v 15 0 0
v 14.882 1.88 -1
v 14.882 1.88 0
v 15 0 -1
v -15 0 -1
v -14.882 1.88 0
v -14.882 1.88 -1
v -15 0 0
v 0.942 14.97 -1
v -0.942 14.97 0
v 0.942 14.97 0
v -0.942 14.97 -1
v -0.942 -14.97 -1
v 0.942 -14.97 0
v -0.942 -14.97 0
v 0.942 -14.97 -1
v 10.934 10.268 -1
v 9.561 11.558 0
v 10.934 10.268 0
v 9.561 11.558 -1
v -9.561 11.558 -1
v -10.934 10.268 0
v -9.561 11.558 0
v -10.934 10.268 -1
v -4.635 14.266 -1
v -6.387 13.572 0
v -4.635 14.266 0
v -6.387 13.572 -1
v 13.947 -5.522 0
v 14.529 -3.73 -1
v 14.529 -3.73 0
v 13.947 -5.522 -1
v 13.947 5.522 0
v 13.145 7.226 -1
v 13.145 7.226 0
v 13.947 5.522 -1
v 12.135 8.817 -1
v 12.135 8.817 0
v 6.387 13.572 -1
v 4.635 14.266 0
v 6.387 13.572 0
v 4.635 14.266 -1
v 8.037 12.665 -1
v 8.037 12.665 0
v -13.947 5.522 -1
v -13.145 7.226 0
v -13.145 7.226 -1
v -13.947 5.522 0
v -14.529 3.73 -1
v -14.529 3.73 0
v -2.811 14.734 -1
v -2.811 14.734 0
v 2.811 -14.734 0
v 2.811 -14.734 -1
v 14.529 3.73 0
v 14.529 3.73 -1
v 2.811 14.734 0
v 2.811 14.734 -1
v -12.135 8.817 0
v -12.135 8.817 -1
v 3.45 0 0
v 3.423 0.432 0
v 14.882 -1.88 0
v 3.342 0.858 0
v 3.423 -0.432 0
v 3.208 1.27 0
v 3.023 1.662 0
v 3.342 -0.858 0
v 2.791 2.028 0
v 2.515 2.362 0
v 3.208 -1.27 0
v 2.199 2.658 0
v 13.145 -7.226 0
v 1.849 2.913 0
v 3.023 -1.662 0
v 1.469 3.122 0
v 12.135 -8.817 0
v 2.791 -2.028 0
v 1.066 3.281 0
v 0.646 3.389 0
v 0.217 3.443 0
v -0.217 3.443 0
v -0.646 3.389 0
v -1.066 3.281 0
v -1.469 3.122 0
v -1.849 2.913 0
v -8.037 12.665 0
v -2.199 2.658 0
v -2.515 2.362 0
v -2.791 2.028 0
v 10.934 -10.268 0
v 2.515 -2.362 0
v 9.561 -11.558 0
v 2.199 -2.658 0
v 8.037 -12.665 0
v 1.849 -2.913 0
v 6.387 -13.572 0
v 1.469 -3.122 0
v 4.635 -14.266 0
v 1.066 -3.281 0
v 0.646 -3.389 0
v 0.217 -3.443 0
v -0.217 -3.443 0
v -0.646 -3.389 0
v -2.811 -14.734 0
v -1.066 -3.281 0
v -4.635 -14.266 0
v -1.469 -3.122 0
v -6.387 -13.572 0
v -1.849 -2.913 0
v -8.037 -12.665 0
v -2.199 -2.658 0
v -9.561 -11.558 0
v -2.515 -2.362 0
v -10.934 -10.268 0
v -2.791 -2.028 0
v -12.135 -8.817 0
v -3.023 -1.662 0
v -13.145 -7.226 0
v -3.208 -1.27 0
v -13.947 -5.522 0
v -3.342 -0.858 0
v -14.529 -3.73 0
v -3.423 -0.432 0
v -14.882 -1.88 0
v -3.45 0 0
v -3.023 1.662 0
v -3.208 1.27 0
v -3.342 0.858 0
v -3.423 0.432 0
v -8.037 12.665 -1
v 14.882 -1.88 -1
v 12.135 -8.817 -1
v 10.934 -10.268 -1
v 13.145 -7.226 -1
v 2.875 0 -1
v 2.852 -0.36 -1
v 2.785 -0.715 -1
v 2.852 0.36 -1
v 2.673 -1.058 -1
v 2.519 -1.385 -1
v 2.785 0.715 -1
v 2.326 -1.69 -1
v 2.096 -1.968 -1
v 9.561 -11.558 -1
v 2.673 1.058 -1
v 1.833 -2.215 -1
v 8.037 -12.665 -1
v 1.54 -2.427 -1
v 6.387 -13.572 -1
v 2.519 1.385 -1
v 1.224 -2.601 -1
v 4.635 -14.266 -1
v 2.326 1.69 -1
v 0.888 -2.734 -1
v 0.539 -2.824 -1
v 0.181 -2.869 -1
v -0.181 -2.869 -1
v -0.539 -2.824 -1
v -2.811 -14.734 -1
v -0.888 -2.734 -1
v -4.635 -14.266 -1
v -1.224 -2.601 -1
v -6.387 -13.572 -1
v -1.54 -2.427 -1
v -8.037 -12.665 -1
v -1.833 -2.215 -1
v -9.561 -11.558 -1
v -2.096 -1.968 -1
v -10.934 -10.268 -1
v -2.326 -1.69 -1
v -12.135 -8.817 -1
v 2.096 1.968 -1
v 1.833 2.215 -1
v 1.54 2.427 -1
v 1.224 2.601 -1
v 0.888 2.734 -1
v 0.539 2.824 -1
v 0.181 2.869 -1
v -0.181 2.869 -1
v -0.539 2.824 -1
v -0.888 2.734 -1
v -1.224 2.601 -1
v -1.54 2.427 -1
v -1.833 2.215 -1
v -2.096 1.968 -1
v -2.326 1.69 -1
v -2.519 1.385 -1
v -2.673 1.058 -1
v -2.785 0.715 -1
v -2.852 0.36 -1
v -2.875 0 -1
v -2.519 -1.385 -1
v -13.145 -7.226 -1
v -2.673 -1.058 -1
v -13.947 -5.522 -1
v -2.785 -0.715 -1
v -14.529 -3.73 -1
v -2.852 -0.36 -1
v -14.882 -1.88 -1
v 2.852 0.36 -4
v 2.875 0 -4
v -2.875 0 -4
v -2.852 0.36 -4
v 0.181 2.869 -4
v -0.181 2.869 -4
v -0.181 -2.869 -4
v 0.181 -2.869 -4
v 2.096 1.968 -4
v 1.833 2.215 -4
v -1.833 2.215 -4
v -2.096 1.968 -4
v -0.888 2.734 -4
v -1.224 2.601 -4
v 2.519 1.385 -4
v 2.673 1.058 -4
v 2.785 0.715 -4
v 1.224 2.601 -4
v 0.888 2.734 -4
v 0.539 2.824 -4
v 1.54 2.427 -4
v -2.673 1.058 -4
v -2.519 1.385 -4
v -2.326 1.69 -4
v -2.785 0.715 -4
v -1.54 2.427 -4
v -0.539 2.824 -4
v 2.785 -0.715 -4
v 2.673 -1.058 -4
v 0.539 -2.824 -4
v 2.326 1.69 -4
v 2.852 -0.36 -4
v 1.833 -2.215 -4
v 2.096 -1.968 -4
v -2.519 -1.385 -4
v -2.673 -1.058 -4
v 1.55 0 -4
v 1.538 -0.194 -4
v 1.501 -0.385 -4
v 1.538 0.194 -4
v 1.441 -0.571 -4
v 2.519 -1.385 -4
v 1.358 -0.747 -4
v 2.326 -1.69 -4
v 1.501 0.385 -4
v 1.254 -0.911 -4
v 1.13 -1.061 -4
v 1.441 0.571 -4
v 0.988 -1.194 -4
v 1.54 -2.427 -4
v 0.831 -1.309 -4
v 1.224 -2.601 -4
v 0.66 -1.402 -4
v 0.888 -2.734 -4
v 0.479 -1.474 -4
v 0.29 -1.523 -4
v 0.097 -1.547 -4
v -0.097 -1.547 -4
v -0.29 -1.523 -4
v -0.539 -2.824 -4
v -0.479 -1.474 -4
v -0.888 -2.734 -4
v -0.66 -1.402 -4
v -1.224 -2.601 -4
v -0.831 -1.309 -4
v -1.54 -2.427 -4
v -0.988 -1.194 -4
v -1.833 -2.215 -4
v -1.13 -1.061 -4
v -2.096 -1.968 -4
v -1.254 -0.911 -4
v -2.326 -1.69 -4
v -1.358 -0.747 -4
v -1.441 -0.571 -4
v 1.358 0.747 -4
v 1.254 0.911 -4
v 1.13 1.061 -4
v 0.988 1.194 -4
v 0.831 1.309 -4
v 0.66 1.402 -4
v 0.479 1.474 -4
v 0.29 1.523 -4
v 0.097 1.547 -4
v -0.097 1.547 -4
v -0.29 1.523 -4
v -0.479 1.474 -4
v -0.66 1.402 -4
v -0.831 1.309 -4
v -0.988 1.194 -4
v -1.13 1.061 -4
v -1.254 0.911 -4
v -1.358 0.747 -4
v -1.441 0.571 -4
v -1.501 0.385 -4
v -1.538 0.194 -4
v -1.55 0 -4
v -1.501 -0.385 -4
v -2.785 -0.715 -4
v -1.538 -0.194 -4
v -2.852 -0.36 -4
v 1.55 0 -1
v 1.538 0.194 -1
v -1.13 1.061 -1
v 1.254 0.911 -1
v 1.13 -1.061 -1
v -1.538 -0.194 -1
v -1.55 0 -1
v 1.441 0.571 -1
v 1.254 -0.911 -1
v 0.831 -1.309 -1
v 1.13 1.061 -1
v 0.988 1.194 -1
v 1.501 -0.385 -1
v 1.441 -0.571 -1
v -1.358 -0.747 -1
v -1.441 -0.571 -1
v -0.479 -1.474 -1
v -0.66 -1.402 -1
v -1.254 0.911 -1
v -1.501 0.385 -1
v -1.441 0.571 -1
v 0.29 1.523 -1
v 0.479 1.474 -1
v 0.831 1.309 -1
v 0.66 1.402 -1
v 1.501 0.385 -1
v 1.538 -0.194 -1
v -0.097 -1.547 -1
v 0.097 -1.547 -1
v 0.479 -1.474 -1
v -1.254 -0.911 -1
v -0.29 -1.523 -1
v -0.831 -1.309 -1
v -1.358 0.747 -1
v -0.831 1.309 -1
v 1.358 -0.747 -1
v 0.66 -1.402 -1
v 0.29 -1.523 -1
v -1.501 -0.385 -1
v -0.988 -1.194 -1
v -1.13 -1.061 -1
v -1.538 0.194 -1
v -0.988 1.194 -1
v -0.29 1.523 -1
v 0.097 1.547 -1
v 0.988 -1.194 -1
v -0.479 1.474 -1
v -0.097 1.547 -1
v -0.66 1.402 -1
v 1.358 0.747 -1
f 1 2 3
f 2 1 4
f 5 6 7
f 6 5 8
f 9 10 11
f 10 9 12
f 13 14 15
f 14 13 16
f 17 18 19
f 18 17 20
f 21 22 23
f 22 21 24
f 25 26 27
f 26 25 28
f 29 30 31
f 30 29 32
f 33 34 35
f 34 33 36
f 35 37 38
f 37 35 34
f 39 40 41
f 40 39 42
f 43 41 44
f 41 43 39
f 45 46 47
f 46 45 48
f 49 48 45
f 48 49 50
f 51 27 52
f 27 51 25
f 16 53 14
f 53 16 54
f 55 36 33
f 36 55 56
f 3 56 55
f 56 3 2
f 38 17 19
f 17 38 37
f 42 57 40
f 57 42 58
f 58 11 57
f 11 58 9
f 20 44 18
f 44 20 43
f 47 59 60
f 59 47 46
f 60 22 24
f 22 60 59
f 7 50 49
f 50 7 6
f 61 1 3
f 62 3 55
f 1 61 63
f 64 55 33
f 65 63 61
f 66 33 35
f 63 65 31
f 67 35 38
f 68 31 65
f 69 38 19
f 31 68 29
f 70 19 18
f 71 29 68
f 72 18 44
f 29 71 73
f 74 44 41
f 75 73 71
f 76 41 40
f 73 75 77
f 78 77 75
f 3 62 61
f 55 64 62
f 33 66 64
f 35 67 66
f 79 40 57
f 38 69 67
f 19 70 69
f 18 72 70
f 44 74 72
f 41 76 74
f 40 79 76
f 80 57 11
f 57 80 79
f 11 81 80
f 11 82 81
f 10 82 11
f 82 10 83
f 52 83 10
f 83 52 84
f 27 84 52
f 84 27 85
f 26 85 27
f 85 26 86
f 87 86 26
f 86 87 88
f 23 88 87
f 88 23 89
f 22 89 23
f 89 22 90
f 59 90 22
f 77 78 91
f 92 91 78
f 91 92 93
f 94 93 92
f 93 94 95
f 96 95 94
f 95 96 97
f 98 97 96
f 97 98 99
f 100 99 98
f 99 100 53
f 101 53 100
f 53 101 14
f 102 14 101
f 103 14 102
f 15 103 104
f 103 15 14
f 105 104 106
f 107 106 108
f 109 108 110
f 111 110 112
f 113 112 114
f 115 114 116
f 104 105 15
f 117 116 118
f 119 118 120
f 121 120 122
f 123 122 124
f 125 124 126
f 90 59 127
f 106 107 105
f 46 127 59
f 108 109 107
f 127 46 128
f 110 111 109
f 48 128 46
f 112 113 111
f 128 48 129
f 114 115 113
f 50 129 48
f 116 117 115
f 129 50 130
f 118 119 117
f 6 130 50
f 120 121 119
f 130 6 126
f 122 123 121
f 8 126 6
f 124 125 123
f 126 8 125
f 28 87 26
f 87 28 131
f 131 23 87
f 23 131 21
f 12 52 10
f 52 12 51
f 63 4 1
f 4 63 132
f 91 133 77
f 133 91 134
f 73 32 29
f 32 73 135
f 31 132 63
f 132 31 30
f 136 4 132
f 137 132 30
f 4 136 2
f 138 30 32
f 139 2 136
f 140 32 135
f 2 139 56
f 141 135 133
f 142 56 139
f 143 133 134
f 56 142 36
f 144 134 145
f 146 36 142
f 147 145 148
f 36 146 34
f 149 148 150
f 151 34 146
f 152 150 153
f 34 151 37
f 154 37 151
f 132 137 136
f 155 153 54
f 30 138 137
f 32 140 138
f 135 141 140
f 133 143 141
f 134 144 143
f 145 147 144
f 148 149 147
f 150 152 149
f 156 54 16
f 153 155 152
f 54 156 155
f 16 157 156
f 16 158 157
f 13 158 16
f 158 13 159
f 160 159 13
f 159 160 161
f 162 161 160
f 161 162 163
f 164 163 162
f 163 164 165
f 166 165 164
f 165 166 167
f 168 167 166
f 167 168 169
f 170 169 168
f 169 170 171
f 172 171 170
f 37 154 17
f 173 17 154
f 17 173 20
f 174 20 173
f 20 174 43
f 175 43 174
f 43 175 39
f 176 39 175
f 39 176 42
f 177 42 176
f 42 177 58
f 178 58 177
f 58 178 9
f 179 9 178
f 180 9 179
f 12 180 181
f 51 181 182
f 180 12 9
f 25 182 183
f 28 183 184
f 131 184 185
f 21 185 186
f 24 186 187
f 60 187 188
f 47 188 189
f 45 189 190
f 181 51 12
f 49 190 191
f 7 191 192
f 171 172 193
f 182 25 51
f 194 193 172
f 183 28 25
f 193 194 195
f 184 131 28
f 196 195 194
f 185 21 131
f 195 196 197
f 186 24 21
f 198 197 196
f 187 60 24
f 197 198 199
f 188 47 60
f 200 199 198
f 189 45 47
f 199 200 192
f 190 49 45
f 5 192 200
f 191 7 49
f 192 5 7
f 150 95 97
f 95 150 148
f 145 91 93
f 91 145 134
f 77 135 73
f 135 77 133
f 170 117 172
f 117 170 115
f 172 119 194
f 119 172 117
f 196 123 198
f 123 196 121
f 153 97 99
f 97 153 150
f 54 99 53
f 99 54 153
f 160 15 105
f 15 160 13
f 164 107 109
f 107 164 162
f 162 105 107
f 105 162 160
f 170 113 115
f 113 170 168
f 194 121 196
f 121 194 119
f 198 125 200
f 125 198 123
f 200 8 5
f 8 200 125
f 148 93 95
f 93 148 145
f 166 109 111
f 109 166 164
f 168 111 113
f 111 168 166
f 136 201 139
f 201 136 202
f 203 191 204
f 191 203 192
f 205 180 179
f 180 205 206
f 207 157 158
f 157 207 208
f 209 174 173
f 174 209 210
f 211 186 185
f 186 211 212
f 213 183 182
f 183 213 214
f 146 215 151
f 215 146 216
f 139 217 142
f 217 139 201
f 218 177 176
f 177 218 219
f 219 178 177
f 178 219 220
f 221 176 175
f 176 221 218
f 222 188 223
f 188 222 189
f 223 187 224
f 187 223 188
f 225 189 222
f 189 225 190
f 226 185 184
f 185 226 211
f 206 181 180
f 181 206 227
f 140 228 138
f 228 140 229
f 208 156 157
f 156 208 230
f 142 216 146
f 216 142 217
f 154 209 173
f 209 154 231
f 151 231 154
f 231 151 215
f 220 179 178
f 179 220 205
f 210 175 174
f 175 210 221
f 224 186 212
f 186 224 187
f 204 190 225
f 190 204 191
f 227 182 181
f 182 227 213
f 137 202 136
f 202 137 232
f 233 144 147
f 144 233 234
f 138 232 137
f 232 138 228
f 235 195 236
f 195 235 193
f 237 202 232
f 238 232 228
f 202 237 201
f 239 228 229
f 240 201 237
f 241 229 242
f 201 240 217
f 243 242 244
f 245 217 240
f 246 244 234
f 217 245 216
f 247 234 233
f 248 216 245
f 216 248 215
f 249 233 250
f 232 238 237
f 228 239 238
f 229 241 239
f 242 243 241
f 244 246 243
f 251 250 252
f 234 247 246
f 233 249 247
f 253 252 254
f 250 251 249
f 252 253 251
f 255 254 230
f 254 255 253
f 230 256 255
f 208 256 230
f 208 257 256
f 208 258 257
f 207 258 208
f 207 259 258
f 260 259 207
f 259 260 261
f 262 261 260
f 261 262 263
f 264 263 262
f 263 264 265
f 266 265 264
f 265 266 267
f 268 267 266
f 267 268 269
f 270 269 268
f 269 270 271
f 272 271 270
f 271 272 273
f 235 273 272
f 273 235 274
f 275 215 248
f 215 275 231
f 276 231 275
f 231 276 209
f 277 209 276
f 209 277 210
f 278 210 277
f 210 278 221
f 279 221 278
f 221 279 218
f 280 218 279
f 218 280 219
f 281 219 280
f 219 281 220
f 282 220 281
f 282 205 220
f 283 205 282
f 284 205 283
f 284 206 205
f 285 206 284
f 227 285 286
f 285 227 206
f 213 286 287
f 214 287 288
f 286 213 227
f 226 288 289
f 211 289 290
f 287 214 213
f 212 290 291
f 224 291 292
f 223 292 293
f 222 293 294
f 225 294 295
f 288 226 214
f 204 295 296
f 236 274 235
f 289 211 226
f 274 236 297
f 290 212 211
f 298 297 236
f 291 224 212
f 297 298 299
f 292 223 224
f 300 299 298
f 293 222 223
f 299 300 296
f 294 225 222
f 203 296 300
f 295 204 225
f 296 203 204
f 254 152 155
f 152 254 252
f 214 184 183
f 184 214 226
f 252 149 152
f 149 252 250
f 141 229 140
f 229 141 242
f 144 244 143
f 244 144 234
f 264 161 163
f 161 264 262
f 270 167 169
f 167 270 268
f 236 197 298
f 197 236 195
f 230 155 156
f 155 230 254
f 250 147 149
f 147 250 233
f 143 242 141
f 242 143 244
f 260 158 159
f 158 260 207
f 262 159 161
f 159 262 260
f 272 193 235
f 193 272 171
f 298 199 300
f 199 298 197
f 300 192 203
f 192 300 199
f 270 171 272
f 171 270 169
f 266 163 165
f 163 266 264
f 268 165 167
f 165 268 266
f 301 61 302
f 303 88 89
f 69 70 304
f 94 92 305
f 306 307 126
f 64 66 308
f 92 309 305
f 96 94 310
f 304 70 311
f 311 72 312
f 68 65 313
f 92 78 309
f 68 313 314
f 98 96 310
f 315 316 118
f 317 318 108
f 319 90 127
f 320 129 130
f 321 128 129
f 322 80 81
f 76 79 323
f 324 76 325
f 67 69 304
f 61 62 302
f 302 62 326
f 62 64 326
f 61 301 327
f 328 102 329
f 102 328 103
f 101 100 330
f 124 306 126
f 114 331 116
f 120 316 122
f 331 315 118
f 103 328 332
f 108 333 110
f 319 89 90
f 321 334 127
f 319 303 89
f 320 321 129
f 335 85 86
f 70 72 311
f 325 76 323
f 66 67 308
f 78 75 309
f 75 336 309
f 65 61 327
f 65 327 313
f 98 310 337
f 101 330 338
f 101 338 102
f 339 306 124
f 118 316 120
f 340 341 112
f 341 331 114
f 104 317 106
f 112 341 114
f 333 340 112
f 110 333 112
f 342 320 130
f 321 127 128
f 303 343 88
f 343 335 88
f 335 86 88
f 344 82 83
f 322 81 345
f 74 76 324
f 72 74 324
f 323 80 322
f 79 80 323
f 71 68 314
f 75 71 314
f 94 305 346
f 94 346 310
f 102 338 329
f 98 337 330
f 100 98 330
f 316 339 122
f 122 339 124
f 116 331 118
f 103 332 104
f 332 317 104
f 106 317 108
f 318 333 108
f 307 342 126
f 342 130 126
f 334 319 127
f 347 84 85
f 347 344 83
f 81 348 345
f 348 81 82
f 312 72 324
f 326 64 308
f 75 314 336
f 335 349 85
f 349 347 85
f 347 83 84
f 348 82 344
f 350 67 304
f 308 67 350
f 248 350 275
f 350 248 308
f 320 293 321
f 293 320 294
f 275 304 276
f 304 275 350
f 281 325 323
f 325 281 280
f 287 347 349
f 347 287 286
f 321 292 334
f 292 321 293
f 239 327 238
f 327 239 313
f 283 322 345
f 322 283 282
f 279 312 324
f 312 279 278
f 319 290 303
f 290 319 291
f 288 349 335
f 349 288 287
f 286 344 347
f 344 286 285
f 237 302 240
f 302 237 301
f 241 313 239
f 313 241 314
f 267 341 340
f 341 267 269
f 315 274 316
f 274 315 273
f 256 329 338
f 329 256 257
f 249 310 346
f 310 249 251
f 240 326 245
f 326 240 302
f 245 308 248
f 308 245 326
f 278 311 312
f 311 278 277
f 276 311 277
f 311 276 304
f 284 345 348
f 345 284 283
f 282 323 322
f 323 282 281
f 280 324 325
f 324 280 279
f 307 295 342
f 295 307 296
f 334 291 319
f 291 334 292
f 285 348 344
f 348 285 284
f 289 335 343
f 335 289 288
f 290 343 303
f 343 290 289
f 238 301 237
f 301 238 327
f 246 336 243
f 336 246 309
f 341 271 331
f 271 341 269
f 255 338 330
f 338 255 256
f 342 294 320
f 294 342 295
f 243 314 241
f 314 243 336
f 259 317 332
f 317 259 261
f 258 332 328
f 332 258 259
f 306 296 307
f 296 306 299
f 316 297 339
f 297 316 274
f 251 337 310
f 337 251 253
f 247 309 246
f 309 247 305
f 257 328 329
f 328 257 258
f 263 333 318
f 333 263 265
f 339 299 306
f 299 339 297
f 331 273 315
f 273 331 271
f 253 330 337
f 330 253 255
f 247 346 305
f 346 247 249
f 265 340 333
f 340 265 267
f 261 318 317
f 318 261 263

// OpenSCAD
$fn = 50;


difference() {
	union() {
		translate(v = [0, 0, -1.0000000000]) {
			cylinder(h = 1.0000000000, r = 15.0000000000);
		}
		translate(v = [0, 0, -4.0000000000]) {
			cylinder(h = 4.0000000000, r = 2.8750000000);
		}
	}
	union() {
		translate(v = [0, 0, 0]) {
			rotate(a = [0, 0, 0]) {
				difference() {
					union() {
						translate(v = [0, 0, -4.0000000000]) {
							cylinder(h = 4.0000000000, r = 1.2500000000);
						}
						translate(v = [0, 0, -1.0000000000]) {
							cylinder(h = 1.0000000000, r1 = 1.5500000000, r2 = 3.4500000000);
						}
						translate(v = [0, 0, -4.0000000000]) {
							cylinder(h = 4.0000000000, r = 1.5500000000);
						}
						translate(v = [0, 0, -4.0000000000]) {
							cylinder(h = 4.0000000000, r = 1.2500000000);
						}
					}
					union();
				}
			}
		}
	}
}
